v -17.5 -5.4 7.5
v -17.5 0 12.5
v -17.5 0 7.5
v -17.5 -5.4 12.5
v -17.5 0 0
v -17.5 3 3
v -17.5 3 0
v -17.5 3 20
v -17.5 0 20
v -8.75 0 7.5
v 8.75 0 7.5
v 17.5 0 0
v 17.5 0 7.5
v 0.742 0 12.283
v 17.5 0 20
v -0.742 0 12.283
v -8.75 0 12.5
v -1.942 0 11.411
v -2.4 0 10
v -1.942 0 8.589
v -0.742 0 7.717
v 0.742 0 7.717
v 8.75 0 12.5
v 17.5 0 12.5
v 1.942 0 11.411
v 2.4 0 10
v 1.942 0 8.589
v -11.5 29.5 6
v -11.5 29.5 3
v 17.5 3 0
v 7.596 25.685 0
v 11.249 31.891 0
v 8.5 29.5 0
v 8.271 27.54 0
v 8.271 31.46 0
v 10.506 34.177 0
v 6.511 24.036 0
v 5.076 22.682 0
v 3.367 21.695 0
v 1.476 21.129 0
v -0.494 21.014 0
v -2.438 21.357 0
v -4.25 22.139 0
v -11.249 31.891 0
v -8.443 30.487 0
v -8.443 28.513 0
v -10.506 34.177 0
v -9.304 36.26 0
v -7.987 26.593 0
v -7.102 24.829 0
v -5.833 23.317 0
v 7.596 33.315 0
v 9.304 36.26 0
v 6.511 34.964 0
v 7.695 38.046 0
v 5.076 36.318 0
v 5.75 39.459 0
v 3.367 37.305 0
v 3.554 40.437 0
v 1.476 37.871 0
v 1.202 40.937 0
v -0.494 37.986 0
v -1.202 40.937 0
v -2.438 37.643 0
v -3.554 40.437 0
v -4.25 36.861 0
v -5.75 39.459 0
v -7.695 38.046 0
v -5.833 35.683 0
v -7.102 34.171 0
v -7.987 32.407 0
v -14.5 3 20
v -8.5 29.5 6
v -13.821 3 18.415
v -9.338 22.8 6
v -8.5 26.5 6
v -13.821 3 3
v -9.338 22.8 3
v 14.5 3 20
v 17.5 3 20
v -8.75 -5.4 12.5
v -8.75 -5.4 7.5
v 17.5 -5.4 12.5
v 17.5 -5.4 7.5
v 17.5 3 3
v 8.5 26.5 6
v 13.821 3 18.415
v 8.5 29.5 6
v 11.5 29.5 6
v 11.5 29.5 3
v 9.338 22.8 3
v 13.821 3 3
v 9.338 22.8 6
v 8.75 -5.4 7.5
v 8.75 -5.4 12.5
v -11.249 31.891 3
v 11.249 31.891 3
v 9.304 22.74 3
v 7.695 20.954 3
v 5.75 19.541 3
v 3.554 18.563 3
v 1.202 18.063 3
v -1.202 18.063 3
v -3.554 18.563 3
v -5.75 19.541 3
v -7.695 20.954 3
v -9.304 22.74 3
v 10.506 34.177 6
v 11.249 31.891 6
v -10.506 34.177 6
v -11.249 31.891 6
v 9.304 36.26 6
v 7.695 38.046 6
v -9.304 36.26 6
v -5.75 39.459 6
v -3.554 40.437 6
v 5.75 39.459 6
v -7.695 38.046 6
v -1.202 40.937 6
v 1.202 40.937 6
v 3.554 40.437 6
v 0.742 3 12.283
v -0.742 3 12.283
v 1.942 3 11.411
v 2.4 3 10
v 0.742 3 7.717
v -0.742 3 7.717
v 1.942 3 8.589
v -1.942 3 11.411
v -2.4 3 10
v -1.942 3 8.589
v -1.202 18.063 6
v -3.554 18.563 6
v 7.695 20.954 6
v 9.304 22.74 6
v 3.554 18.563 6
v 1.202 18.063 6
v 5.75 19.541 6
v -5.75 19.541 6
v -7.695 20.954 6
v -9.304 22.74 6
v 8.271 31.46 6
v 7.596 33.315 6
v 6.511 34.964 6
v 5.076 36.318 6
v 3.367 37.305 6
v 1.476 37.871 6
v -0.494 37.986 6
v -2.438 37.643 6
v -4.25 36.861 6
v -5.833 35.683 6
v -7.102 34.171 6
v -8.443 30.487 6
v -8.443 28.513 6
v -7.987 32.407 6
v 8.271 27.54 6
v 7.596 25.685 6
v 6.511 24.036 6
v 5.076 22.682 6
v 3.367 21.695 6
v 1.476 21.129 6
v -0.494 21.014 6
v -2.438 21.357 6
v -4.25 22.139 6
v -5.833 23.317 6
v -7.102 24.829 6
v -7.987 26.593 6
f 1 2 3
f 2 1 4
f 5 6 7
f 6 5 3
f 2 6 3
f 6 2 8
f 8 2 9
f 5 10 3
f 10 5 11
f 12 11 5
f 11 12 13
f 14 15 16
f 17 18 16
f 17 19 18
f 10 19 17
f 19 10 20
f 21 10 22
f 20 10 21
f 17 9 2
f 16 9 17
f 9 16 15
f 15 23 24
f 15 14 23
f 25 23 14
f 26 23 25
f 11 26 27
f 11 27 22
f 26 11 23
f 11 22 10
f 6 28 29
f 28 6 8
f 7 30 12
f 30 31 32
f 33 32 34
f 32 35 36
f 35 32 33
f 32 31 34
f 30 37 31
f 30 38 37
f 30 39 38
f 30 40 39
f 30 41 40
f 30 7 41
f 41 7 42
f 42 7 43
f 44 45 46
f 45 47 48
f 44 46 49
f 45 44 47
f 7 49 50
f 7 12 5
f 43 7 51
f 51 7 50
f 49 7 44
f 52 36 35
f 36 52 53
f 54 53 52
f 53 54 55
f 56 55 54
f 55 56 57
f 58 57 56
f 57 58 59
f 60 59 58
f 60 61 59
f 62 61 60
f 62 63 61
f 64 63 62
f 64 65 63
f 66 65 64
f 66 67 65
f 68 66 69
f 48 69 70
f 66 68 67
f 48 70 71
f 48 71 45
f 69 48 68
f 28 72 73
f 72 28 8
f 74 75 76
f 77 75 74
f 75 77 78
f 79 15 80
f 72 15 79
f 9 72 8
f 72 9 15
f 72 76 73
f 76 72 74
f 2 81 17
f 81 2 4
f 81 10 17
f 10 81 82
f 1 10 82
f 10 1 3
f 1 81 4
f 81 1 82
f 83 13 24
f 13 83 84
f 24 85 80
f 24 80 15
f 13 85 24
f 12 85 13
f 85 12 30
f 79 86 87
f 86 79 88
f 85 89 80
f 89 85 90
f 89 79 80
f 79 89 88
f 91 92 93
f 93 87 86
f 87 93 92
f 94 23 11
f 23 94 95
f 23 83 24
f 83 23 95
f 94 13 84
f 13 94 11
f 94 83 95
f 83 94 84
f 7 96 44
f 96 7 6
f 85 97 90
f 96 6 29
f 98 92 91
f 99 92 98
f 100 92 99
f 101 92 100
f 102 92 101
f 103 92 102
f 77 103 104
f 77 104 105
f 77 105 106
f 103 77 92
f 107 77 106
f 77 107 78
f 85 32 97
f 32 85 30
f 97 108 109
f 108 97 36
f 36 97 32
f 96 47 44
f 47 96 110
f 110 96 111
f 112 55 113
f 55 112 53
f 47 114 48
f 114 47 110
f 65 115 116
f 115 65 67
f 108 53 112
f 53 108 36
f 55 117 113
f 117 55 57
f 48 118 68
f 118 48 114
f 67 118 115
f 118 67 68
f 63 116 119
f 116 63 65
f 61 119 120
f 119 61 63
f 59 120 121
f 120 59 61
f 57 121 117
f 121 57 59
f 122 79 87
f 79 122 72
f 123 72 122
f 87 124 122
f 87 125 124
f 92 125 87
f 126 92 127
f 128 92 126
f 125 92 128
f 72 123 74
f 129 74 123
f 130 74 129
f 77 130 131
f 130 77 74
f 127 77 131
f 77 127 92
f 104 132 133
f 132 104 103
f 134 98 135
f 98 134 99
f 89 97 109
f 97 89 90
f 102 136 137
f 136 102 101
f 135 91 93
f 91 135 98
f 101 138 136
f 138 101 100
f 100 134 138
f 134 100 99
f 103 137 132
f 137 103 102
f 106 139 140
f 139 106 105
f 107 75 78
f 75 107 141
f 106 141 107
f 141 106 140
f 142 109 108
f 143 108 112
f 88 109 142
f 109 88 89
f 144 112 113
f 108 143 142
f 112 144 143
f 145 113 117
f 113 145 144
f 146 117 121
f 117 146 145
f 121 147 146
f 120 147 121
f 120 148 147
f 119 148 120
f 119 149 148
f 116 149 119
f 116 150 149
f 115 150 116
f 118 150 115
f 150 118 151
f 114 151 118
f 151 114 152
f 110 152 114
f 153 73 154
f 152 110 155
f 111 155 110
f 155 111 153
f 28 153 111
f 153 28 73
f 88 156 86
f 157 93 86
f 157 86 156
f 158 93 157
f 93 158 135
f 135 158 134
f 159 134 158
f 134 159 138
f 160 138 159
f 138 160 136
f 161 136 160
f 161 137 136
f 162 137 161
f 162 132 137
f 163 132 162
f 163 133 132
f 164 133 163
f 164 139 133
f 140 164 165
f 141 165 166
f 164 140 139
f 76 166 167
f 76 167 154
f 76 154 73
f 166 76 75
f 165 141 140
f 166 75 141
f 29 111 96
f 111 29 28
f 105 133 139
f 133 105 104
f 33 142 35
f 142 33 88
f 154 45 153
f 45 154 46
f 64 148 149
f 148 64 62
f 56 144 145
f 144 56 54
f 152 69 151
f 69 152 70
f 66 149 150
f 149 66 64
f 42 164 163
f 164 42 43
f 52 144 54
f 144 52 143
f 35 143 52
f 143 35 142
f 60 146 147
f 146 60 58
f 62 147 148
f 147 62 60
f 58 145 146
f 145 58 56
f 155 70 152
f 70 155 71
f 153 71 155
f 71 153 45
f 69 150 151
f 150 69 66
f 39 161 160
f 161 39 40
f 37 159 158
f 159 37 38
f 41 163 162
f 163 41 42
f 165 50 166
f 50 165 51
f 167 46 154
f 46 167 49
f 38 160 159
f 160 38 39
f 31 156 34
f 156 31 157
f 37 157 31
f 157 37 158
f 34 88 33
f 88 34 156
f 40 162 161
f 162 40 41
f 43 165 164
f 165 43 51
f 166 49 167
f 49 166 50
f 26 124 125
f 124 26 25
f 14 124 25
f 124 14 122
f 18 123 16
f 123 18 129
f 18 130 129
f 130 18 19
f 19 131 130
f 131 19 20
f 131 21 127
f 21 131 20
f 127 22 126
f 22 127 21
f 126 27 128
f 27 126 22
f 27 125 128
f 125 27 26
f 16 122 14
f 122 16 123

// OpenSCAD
RODAM_DIAM              = 16+1;
RODAM_DIST_PERFIL       = 21;

PERF_RANURA_ANCHO       = 6.3-0.5;
PERF_RANURA_PROF        = 5;

SOP_PARED_ESP           = 3;
SOP_ANCHO               = 35;
SOP_ALTO                = 20;
SOP_GUIA_RANURA_ANCHO   = SOP_ANCHO/4;
SOP_TORN_DIAM           = 4+.8;


module zAxisTopGuide()
{
    difference() {
        union() {
            hull() {
                translate([0,SOP_PARED_ESP/2,SOP_PARED_ESP/2]) cube([SOP_ANCHO, SOP_PARED_ESP, SOP_PARED_ESP], center=true);
                translate([0,RODAM_DIST_PERFIL+RODAM_DIAM/2]) cylinder(d=RODAM_DIAM+SOP_PARED_ESP*2, h=SOP_PARED_ESP);
            }
            translate([0,SOP_PARED_ESP/2,SOP_ALTO/2]) cube([SOP_ANCHO, SOP_PARED_ESP, SOP_ALTO], center=true);
            translate([0,RODAM_DIST_PERFIL+RODAM_DIAM/2]) cylinder(d=RODAM_DIAM+SOP_PARED_ESP*2, h=SOP_PARED_ESP*2);
            for(i=[-1,1]) {
                hull() {
                    translate([(SOP_ANCHO/2-SOP_PARED_ESP/2)*i,SOP_PARED_ESP/2,SOP_ALTO/2]) 
                        cube([SOP_PARED_ESP,SOP_PARED_ESP,SOP_ALTO], center=true);
                    translate([(RODAM_DIAM/2+SOP_PARED_ESP/2)*i,RODAM_DIST_PERFIL+RODAM_DIAM/2-SOP_PARED_ESP/2,SOP_PARED_ESP*3/2]) 
                        cube([SOP_PARED_ESP,SOP_PARED_ESP,SOP_PARED_ESP], center=true);
                }
                translate([(SOP_ANCHO/2-SOP_GUIA_RANURA_ANCHO/2)*i,-PERF_RANURA_PROF/2,SOP_ALTO/2]) 
                    cube([SOP_GUIA_RANURA_ANCHO, PERF_RANURA_ANCHO, PERF_RANURA_PROF], center=true);
            }
        }
        color("red", 0.5) {
            translate([0,RODAM_DIST_PERFIL+RODAM_DIAM/2]) cylinder(d=RODAM_DIAM, h=SOP_PARED_ESP*2);
            translate([0,20/2,SOP_ALTO/2]) rotate([90,0,0]) cylinder(d=SOP_TORN_DIAM, h=20, $fn=10);
        }
    }
}

zAxisTopGuide();
